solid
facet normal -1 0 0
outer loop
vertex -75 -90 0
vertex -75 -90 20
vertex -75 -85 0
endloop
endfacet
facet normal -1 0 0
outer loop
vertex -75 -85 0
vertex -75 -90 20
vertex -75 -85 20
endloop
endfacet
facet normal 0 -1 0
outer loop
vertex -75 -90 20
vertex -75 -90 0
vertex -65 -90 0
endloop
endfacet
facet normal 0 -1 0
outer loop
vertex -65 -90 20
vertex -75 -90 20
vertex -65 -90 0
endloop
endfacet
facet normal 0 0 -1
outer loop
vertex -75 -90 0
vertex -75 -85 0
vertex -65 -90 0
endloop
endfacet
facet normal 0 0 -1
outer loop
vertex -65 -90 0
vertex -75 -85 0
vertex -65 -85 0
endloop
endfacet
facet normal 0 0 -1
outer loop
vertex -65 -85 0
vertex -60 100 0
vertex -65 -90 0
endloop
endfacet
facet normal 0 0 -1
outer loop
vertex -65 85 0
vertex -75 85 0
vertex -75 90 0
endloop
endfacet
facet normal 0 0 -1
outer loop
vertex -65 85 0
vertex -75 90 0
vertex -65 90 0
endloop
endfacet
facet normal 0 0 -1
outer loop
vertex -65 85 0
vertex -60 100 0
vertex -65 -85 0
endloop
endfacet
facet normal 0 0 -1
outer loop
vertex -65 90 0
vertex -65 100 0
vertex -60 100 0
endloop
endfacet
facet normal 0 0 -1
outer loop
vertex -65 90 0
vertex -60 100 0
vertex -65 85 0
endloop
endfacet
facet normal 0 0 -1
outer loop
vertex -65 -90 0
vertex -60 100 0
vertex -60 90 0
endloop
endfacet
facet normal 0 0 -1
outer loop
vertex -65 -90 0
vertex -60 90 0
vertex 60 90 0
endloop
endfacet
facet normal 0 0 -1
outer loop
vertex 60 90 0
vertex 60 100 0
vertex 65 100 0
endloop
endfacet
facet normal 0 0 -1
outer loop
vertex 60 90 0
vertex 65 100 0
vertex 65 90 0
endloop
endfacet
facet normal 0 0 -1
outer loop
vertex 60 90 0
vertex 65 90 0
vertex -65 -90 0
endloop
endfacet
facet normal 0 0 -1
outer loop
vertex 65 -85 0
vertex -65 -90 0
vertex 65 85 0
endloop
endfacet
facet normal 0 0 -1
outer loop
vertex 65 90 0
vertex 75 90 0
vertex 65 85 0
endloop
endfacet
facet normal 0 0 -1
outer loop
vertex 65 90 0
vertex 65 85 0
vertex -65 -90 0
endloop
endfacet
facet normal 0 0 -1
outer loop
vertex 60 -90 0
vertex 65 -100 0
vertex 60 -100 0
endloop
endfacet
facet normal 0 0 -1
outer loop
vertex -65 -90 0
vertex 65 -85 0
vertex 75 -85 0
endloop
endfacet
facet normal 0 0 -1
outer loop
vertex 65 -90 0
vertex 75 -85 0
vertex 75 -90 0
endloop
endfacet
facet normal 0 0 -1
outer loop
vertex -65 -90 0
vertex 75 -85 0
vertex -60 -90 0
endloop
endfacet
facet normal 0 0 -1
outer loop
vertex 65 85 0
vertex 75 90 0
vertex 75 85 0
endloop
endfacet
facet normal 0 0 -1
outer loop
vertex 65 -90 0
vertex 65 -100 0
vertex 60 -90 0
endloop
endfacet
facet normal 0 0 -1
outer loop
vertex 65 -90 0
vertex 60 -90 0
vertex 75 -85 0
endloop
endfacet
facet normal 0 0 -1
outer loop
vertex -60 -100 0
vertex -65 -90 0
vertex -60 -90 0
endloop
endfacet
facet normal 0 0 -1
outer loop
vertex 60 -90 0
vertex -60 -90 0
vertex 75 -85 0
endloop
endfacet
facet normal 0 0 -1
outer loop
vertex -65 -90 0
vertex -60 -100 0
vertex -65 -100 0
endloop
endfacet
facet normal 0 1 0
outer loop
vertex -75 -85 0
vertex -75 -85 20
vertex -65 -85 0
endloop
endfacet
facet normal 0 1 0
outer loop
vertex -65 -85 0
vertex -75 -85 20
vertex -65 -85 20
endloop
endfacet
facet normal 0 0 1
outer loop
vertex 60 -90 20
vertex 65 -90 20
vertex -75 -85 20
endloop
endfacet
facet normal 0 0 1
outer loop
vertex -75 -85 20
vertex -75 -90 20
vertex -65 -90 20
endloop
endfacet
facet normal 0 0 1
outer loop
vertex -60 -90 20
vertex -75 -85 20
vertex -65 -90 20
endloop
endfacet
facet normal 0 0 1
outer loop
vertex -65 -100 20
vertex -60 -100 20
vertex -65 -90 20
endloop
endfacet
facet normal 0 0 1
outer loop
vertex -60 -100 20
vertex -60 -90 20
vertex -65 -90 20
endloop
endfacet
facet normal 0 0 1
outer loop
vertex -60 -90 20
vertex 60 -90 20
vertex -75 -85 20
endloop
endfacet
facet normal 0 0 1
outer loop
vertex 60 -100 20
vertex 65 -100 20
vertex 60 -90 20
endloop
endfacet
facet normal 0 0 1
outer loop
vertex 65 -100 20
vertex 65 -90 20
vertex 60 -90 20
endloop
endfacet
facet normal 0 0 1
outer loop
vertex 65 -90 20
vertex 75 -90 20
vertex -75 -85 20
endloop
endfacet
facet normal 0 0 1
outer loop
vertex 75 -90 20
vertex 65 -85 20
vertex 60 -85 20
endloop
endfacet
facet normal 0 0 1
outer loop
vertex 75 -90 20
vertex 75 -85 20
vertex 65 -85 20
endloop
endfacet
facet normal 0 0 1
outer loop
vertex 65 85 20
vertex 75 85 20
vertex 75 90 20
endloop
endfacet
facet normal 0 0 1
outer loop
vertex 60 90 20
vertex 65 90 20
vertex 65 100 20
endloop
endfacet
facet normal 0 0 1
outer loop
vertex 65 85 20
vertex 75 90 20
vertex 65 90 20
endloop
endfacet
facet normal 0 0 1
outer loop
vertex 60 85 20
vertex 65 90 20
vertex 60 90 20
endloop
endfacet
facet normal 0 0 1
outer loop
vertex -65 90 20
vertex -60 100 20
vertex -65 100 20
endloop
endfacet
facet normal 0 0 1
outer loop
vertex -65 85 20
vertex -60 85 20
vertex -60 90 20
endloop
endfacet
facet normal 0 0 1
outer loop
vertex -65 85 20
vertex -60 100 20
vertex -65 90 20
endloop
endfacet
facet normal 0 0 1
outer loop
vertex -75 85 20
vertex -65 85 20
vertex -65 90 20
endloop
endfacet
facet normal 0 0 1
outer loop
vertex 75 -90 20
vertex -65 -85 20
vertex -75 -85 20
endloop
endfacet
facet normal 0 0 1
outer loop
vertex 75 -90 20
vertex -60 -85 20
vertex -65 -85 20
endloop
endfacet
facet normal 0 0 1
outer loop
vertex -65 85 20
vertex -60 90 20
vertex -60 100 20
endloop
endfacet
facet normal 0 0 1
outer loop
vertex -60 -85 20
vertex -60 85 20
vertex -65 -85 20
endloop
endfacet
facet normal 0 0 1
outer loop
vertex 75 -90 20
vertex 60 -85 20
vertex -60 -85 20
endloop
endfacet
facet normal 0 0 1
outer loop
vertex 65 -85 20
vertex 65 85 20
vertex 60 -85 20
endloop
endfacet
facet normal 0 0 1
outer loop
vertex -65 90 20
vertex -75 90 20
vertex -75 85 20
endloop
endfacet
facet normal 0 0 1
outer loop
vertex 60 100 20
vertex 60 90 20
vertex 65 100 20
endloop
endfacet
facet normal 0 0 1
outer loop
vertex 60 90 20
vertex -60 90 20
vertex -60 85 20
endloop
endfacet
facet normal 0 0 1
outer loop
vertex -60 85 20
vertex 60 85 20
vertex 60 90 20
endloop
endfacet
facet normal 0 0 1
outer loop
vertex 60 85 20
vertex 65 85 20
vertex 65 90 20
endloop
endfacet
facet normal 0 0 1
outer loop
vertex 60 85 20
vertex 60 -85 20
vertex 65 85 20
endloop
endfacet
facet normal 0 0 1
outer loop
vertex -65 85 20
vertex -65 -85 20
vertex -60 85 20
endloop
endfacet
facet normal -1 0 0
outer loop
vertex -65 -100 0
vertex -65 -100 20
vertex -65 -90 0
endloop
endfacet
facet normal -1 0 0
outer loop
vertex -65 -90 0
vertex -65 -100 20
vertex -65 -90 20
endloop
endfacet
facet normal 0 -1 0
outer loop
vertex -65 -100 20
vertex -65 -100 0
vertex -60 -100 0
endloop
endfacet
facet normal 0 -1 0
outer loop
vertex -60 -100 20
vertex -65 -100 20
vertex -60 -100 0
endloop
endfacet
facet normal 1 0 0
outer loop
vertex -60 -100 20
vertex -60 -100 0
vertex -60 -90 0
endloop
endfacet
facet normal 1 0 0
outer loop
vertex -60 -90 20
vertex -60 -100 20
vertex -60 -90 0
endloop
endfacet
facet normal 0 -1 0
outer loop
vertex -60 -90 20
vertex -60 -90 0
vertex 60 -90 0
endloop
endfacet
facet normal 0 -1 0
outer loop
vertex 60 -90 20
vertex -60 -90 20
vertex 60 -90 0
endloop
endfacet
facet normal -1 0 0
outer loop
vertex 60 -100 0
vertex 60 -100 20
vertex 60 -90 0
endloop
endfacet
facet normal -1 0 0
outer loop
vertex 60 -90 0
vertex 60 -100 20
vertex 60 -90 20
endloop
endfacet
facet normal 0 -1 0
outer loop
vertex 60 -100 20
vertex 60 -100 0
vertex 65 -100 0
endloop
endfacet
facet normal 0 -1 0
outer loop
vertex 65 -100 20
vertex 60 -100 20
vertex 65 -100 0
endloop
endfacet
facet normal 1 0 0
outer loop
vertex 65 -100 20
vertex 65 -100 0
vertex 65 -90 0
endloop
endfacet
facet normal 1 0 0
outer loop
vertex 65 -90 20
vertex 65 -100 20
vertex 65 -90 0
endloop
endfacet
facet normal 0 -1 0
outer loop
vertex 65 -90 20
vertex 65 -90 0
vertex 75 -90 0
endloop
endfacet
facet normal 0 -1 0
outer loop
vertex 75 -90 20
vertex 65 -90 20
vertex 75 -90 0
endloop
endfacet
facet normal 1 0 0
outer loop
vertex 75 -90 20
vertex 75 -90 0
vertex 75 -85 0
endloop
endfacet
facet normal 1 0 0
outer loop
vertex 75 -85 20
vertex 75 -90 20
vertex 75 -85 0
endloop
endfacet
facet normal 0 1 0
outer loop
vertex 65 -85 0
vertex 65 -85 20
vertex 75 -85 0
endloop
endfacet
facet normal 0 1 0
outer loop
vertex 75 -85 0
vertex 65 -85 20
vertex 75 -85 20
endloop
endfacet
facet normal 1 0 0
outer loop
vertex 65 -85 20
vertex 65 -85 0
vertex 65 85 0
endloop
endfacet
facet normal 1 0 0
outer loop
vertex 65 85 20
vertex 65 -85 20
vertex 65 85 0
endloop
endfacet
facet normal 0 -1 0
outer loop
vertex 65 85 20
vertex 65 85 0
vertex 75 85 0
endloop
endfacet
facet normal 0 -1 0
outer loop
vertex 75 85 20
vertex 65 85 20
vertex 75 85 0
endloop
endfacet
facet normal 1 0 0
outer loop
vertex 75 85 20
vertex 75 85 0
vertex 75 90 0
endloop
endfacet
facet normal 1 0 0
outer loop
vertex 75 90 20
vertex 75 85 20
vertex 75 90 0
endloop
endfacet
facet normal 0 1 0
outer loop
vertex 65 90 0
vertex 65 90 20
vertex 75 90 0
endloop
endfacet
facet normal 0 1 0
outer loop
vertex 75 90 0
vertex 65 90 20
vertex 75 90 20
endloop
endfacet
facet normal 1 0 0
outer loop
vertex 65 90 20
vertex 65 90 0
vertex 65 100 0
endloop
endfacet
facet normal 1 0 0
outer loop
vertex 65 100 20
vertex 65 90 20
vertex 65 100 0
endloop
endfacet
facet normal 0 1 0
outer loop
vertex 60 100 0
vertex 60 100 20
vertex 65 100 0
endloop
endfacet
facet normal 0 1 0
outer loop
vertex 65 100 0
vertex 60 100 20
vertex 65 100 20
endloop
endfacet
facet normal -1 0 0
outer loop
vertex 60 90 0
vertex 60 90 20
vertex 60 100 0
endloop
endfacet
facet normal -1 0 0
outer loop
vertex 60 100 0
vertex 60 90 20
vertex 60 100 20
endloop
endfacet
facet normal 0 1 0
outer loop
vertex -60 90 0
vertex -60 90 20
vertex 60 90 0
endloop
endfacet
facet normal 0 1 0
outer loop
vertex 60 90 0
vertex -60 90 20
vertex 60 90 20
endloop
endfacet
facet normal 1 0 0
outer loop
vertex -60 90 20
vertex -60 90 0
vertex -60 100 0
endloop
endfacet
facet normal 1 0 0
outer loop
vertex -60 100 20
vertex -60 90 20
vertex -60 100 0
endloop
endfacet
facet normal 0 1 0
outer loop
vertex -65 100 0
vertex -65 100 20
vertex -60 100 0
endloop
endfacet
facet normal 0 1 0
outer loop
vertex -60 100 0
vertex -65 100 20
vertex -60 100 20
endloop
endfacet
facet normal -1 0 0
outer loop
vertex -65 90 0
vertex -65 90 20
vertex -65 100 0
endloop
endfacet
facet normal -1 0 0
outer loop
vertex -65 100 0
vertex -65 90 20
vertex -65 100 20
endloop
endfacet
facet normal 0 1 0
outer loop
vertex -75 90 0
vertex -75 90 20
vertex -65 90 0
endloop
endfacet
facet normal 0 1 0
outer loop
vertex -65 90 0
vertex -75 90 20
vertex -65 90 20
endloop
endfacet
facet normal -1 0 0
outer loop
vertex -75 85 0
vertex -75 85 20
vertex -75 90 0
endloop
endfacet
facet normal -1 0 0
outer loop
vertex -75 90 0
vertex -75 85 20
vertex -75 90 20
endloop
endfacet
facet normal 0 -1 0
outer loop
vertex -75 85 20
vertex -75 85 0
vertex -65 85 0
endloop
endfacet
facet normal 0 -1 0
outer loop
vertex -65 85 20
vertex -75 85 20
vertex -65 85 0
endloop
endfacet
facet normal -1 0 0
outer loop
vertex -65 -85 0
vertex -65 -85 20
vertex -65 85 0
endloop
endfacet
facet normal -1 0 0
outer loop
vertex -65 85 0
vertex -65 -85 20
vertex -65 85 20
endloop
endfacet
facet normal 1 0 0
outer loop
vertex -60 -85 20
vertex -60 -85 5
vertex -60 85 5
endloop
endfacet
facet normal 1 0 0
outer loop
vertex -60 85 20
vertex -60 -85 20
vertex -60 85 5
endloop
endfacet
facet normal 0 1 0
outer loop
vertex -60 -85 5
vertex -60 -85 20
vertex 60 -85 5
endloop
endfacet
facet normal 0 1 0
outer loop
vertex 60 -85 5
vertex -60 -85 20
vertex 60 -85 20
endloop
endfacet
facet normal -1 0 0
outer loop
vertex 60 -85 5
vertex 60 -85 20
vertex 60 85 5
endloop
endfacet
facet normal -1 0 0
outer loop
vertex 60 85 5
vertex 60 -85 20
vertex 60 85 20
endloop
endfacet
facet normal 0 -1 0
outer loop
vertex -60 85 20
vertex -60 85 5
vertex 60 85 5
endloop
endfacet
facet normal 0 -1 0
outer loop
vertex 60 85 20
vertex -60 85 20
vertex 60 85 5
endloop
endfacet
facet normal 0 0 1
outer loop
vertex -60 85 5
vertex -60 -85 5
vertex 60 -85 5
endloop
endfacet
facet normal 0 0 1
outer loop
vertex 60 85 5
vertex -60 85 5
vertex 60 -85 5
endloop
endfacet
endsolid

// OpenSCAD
buildPlateLength = 150;
buildPlateWidth = 200;
height = 20;
wallThickness = 5;

/* [Hidden] */
flair = 20;
buffer = flair + 5;



union() {
	translate([0, 0, wallThickness/2]) cube([buildPlateLength - buffer, buildPlateWidth-buffer, wallThickness], center = true);

	translate([0, (buildPlateWidth-buffer)/2, height/2]) cube([buildPlateLength, wallThickness, height], center = true);

	translate([0, -(buildPlateWidth-buffer)/2, height/2]) cube([buildPlateLength, wallThickness, height], center = true);

	translate([-(buildPlateLength-buffer)/2, 0, height/2]) cube([wallThickness, buildPlateWidth, height], center = true);

	translate([(buildPlateLength-buffer)/2, 0, height/2]) cube([wallThickness, buildPlateWidth, height], center = true);
}
